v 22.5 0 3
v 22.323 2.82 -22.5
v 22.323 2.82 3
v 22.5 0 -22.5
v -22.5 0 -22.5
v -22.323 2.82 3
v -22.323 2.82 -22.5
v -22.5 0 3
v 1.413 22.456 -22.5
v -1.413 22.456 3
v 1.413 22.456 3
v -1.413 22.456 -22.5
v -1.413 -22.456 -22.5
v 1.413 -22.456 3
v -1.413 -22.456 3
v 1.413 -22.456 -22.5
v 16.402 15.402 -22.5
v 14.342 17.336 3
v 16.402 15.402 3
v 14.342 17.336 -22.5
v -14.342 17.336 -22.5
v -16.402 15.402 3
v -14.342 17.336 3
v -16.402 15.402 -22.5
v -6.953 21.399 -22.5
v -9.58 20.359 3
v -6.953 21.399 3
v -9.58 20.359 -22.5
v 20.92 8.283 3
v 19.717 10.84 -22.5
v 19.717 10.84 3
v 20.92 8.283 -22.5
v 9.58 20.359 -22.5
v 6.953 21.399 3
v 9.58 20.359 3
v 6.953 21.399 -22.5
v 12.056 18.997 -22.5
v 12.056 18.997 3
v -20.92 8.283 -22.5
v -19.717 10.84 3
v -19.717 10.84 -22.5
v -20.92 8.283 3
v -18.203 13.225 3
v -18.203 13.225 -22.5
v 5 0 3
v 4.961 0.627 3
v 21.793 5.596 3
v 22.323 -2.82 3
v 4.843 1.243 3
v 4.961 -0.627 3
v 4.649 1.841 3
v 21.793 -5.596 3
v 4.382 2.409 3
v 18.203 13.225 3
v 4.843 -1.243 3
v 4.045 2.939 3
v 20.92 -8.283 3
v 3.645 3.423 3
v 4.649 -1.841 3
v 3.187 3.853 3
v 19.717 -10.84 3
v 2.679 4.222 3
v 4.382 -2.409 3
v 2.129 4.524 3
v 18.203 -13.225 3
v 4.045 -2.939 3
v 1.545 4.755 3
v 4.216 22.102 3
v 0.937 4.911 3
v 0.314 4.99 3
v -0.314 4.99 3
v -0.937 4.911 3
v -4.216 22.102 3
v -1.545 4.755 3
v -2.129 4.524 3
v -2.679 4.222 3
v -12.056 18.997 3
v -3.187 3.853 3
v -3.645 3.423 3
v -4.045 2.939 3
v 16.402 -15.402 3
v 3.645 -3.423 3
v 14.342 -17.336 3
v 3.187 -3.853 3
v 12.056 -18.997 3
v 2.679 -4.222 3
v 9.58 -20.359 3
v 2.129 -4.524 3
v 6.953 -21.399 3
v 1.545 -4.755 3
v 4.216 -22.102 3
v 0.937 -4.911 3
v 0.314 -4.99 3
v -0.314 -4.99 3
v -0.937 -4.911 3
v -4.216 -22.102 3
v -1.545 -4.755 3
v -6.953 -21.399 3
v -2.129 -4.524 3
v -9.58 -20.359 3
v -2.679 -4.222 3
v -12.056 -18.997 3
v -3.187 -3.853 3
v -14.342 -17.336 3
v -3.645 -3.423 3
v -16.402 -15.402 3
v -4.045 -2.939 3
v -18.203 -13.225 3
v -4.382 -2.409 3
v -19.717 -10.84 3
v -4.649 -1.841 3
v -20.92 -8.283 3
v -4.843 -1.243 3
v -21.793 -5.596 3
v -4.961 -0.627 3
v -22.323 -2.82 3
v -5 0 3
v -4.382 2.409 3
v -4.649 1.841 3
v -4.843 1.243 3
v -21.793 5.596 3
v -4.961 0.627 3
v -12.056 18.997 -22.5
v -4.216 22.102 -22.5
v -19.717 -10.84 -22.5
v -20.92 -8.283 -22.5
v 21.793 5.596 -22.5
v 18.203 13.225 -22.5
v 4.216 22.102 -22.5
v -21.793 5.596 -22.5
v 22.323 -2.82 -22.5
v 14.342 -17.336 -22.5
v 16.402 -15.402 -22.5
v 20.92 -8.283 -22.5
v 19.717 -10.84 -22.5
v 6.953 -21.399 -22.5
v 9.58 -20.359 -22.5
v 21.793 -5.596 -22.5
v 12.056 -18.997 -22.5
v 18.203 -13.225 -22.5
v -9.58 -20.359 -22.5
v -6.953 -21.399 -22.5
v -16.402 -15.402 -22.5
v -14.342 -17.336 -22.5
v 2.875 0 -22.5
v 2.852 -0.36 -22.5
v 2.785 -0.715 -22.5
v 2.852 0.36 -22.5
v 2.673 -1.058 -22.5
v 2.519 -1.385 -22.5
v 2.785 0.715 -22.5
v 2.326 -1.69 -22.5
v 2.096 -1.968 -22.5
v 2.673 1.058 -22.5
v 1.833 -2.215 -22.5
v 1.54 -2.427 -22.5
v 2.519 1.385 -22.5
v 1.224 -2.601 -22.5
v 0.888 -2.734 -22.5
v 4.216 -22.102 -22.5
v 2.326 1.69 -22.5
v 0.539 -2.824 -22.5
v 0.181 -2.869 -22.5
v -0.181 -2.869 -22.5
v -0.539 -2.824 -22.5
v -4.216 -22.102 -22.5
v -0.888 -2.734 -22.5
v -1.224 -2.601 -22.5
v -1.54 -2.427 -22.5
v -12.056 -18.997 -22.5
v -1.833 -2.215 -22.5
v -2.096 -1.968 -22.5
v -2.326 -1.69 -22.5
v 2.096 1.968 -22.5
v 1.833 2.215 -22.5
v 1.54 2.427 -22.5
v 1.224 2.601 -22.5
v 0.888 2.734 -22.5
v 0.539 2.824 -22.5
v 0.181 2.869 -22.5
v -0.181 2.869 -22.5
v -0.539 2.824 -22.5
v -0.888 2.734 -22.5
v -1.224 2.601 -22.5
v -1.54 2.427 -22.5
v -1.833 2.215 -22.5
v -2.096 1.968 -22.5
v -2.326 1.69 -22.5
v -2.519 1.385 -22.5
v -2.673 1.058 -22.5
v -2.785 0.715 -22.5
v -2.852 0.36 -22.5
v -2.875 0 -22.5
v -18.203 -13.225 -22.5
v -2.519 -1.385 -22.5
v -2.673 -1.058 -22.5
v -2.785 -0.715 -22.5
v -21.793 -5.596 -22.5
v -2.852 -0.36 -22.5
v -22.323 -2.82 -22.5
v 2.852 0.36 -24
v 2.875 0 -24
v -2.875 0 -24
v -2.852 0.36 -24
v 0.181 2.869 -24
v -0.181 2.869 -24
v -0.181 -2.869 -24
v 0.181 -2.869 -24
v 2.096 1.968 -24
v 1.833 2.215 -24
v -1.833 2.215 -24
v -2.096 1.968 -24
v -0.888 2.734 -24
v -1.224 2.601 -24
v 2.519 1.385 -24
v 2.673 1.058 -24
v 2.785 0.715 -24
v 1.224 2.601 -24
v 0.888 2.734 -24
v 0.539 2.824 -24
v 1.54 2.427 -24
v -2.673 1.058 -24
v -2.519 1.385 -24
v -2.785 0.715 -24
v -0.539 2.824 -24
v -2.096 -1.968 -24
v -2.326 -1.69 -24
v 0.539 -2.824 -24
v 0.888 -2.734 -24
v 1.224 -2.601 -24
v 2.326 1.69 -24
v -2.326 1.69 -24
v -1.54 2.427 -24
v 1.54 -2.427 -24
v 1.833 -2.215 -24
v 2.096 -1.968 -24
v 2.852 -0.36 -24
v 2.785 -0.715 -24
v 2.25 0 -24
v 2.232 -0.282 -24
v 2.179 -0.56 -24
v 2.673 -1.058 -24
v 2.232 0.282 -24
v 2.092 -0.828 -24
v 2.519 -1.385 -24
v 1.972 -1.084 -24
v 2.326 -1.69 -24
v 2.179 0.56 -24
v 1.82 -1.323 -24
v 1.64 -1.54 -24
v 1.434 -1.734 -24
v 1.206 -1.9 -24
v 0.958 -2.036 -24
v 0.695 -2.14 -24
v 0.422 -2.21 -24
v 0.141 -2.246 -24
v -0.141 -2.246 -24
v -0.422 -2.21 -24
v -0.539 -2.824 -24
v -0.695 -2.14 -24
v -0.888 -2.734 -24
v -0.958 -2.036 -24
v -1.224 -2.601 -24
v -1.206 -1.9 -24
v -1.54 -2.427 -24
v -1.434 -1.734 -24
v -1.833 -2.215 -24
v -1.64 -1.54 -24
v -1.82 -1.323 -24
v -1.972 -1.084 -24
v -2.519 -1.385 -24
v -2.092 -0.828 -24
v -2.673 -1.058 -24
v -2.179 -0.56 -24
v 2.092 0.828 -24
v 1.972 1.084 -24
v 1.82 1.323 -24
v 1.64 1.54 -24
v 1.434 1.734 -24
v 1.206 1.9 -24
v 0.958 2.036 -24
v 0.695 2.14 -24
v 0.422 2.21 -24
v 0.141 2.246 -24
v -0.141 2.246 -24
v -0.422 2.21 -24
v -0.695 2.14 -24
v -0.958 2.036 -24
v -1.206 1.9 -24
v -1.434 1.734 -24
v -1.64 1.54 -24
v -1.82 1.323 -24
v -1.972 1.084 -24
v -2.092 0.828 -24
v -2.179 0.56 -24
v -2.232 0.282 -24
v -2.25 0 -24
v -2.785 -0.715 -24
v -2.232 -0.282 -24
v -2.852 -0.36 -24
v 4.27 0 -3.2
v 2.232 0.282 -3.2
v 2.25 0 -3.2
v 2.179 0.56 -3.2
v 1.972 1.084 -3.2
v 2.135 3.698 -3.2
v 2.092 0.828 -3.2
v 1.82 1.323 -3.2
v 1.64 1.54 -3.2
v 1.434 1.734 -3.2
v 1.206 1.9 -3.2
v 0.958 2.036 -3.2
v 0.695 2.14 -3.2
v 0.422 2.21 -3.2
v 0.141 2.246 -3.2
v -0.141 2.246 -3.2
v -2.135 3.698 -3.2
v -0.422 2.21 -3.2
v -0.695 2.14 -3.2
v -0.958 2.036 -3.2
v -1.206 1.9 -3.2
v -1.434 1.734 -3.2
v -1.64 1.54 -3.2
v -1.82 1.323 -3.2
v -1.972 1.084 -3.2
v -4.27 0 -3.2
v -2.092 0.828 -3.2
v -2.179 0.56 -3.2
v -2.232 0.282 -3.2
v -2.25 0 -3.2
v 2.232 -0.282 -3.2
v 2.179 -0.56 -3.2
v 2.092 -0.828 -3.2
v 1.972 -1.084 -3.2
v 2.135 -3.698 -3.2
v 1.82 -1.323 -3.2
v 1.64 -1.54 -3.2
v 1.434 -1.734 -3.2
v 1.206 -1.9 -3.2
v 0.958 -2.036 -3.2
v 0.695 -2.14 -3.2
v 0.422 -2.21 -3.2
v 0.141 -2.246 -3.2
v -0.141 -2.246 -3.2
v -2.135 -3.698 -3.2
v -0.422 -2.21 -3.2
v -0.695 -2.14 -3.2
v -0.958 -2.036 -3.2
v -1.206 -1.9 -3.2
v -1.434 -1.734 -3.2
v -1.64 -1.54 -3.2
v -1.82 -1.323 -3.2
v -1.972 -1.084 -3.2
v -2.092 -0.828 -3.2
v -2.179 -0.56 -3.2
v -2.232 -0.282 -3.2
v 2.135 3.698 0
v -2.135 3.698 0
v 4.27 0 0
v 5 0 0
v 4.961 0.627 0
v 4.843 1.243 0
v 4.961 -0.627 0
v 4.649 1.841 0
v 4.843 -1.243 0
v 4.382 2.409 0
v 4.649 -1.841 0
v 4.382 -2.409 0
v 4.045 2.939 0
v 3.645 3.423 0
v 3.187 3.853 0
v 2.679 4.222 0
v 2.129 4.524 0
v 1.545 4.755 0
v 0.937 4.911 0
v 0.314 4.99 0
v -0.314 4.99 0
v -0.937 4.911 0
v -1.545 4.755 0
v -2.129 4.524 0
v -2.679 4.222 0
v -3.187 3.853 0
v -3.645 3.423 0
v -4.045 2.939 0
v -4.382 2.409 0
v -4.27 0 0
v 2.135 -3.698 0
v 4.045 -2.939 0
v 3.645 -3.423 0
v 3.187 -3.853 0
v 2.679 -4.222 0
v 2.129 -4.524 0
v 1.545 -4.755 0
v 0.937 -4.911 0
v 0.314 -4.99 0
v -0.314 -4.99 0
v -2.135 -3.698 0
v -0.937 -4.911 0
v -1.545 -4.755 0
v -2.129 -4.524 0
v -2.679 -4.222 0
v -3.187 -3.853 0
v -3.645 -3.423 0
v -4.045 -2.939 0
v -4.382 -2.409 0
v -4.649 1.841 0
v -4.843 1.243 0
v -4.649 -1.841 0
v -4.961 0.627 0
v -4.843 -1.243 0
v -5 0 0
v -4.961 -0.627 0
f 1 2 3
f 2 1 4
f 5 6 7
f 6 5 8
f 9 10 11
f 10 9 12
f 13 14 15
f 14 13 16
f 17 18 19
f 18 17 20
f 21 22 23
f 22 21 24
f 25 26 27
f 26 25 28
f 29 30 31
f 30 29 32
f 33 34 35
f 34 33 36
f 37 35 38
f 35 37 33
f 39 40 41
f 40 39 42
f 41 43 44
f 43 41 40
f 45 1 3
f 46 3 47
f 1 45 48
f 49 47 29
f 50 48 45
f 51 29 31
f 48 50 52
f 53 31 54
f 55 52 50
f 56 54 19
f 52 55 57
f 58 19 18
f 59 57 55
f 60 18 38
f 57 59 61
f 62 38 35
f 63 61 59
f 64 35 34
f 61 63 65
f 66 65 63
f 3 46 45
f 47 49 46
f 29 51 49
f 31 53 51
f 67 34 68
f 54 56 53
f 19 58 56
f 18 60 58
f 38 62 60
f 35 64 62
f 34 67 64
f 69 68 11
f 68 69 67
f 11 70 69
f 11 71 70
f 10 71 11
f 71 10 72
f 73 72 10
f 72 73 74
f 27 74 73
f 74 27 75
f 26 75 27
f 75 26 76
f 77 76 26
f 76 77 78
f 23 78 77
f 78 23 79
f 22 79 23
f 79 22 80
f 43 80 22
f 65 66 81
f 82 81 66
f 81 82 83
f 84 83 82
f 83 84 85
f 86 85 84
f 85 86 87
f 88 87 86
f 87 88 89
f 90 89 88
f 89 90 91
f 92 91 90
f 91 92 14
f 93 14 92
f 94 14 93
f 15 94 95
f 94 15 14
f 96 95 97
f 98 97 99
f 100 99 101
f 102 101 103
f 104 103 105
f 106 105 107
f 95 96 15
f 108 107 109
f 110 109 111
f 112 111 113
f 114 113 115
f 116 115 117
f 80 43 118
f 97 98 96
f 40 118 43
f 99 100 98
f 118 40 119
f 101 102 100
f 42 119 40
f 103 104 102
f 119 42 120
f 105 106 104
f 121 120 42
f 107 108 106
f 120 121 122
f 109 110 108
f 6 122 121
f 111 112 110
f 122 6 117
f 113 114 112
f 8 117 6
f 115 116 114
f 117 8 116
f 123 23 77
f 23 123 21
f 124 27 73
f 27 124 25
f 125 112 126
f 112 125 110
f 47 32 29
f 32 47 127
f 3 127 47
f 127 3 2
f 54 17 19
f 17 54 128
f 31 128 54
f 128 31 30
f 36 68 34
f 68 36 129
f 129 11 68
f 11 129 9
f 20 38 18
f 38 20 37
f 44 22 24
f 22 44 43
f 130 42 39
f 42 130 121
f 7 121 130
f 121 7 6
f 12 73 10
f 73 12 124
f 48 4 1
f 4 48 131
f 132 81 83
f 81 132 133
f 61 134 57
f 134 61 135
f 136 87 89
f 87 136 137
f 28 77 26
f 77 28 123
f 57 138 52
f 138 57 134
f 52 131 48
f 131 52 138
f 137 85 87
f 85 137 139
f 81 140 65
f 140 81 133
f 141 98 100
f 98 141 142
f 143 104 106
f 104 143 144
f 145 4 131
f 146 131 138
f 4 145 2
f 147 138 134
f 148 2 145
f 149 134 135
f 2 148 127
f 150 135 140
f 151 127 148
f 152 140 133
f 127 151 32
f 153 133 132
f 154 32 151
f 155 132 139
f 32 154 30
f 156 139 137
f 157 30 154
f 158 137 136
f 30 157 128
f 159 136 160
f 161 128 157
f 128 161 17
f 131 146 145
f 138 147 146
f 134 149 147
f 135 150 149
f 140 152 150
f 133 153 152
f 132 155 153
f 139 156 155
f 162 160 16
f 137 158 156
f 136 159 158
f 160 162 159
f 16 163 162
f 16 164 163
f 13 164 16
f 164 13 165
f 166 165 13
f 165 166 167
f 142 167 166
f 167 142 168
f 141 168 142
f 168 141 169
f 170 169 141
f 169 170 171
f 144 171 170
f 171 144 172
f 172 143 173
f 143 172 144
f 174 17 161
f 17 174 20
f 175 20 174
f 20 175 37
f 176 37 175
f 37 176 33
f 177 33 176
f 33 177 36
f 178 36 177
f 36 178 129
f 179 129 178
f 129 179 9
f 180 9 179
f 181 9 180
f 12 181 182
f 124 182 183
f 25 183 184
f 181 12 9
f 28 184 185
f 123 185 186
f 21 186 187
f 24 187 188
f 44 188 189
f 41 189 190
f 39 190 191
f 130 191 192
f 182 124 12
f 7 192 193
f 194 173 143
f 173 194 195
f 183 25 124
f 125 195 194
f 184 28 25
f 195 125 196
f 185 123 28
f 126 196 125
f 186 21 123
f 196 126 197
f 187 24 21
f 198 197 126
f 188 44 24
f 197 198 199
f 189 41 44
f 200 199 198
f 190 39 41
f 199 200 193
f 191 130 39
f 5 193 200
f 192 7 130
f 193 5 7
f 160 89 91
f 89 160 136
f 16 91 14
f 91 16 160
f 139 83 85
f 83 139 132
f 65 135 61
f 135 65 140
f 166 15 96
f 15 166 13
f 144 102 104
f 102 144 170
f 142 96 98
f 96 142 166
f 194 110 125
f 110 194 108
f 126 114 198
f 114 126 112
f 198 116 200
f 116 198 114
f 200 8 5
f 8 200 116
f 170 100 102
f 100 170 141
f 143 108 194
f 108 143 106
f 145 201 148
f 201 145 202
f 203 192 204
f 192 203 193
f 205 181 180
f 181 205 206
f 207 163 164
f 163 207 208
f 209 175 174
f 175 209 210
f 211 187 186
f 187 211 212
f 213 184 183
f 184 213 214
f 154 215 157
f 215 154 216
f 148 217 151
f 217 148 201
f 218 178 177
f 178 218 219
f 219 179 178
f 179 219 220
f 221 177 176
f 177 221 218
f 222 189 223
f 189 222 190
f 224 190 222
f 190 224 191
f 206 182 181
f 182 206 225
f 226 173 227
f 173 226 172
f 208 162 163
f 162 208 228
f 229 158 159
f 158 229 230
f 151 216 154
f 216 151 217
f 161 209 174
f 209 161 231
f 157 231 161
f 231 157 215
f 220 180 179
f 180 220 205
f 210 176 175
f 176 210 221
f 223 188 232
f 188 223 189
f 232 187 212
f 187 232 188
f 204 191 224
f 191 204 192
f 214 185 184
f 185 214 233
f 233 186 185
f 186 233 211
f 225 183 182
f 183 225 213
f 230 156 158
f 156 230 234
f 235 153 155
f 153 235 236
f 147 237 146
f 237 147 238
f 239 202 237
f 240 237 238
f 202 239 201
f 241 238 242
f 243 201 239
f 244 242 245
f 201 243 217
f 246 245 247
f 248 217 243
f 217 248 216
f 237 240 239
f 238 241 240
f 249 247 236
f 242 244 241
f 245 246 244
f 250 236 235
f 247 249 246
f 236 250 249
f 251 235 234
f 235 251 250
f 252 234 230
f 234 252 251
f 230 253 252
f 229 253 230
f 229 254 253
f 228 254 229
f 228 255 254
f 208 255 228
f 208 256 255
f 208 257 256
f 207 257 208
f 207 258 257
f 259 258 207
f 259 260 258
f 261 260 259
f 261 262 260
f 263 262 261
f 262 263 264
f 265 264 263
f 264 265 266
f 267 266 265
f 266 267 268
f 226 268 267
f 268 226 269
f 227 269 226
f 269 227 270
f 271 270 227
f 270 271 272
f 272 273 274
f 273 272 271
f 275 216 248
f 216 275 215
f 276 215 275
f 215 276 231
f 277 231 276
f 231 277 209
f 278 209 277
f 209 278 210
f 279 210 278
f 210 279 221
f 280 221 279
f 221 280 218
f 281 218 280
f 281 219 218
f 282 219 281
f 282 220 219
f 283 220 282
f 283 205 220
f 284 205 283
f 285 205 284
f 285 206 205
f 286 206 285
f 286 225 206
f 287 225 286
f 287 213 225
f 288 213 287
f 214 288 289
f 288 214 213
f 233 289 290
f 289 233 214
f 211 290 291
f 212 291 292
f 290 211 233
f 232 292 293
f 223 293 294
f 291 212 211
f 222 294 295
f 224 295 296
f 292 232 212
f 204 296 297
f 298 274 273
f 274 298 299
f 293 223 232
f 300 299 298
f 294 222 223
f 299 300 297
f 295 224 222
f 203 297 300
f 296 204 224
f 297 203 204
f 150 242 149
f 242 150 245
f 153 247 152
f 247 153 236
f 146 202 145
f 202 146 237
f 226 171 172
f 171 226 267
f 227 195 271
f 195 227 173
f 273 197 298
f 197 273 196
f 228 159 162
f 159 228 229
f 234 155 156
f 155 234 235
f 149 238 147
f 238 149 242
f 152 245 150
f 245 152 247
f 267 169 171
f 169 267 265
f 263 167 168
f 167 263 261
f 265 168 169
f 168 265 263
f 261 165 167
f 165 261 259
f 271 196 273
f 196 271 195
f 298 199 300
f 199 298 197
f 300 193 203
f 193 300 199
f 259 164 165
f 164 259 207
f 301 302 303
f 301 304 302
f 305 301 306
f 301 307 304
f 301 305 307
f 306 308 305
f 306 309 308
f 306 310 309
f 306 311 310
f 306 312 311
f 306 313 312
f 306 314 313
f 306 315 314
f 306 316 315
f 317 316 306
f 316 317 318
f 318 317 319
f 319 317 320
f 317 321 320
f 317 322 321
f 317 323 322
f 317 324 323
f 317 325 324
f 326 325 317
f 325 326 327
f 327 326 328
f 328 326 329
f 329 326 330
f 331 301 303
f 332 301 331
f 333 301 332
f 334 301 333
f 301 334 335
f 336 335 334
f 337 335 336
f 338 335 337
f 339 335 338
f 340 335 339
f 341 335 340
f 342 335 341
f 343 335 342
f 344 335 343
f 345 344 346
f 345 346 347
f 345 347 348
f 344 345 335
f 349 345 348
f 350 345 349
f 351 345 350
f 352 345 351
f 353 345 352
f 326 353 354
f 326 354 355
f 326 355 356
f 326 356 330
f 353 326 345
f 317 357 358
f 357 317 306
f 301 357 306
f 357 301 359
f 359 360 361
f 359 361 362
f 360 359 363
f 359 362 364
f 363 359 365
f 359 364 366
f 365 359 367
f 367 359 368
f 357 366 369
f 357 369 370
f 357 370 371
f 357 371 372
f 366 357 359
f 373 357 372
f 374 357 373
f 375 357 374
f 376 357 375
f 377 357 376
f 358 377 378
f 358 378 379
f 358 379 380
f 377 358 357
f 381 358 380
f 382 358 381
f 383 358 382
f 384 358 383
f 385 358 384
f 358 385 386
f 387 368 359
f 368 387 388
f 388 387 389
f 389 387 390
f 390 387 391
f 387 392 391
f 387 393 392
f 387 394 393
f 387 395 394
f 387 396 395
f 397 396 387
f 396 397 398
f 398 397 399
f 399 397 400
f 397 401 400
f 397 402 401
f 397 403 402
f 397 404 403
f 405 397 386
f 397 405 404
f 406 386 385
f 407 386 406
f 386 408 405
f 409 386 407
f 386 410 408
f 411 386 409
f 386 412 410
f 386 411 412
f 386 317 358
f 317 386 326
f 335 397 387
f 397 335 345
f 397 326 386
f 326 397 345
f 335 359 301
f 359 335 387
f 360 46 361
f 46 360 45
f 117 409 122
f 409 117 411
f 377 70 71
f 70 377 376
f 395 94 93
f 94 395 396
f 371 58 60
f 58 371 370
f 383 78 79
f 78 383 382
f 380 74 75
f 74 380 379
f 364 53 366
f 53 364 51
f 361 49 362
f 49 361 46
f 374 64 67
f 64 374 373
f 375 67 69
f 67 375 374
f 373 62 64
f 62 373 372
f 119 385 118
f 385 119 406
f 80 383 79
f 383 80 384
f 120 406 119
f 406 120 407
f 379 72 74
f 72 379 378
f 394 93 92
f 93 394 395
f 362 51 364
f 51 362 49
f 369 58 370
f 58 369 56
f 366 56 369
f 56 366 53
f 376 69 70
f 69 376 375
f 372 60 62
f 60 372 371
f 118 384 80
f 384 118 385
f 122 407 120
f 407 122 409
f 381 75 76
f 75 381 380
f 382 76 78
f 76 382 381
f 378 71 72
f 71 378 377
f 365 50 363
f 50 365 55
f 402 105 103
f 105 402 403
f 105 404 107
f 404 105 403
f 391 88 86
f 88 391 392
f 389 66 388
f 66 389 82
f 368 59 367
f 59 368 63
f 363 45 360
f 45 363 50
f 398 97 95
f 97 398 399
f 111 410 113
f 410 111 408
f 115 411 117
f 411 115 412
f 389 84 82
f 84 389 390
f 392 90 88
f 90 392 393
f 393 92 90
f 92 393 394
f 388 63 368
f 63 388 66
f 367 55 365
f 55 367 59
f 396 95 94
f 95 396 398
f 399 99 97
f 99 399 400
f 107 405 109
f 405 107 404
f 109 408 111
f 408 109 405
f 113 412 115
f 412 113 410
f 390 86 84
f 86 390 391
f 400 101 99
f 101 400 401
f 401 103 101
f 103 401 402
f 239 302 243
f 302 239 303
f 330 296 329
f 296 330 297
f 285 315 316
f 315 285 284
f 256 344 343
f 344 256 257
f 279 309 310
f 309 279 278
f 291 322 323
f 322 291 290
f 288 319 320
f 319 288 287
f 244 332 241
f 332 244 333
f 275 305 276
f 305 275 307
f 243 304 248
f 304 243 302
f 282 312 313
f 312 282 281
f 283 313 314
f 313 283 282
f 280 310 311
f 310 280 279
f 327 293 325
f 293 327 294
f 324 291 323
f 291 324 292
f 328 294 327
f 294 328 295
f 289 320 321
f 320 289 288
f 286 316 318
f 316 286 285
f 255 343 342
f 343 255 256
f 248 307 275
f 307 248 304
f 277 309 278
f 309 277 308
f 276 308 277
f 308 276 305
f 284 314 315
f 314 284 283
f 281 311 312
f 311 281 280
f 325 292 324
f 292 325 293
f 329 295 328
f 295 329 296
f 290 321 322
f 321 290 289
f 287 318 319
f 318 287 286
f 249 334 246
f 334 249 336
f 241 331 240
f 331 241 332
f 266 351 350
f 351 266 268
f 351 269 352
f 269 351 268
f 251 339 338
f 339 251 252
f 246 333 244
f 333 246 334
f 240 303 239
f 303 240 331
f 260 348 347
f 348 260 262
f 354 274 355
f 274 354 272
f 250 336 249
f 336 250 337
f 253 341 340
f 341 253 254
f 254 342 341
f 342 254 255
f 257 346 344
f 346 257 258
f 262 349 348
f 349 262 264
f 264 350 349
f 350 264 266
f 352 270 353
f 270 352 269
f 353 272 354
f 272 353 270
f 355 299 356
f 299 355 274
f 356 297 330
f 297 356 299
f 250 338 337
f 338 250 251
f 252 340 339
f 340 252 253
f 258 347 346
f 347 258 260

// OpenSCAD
$fn = 50;

difference() {
	union() {
		translate(v = [0, 0, -22.5]) {
			cylinder(h = 25.5, r = 22.5);
		}
		#translate(v = [0, 0, -24.0]) {
			cylinder(h = 24, r = 2.875);
		}
	}
	union() {
		translate(v = [0, 0, 0]) {
			rotate(a = [0, 0, 0]) {
				difference() {
					union() {
						translate(v = [0, 0, -3.2]) {
							linear_extrude(height = 3.2) {
								polygon(points = [[4.2698, 0.0], [2.1349000000000005, 3.697755269078796], [-2.134899999999999, 3.6977552690787965], [-4.2698, 5.228996902999369e-16], [-2.134900000000002, -3.6977552690787956], [2.1348999999999974, -3.697755269078798]]);
							}
						}
					}
					union();
				}
			}
		}
		#cylinder(h = 3, r = 5.0);
		#translate(v = [0, 0, -100.0]) {
			cylinder(h = 200, r = 2.25);
		}
	}
}
